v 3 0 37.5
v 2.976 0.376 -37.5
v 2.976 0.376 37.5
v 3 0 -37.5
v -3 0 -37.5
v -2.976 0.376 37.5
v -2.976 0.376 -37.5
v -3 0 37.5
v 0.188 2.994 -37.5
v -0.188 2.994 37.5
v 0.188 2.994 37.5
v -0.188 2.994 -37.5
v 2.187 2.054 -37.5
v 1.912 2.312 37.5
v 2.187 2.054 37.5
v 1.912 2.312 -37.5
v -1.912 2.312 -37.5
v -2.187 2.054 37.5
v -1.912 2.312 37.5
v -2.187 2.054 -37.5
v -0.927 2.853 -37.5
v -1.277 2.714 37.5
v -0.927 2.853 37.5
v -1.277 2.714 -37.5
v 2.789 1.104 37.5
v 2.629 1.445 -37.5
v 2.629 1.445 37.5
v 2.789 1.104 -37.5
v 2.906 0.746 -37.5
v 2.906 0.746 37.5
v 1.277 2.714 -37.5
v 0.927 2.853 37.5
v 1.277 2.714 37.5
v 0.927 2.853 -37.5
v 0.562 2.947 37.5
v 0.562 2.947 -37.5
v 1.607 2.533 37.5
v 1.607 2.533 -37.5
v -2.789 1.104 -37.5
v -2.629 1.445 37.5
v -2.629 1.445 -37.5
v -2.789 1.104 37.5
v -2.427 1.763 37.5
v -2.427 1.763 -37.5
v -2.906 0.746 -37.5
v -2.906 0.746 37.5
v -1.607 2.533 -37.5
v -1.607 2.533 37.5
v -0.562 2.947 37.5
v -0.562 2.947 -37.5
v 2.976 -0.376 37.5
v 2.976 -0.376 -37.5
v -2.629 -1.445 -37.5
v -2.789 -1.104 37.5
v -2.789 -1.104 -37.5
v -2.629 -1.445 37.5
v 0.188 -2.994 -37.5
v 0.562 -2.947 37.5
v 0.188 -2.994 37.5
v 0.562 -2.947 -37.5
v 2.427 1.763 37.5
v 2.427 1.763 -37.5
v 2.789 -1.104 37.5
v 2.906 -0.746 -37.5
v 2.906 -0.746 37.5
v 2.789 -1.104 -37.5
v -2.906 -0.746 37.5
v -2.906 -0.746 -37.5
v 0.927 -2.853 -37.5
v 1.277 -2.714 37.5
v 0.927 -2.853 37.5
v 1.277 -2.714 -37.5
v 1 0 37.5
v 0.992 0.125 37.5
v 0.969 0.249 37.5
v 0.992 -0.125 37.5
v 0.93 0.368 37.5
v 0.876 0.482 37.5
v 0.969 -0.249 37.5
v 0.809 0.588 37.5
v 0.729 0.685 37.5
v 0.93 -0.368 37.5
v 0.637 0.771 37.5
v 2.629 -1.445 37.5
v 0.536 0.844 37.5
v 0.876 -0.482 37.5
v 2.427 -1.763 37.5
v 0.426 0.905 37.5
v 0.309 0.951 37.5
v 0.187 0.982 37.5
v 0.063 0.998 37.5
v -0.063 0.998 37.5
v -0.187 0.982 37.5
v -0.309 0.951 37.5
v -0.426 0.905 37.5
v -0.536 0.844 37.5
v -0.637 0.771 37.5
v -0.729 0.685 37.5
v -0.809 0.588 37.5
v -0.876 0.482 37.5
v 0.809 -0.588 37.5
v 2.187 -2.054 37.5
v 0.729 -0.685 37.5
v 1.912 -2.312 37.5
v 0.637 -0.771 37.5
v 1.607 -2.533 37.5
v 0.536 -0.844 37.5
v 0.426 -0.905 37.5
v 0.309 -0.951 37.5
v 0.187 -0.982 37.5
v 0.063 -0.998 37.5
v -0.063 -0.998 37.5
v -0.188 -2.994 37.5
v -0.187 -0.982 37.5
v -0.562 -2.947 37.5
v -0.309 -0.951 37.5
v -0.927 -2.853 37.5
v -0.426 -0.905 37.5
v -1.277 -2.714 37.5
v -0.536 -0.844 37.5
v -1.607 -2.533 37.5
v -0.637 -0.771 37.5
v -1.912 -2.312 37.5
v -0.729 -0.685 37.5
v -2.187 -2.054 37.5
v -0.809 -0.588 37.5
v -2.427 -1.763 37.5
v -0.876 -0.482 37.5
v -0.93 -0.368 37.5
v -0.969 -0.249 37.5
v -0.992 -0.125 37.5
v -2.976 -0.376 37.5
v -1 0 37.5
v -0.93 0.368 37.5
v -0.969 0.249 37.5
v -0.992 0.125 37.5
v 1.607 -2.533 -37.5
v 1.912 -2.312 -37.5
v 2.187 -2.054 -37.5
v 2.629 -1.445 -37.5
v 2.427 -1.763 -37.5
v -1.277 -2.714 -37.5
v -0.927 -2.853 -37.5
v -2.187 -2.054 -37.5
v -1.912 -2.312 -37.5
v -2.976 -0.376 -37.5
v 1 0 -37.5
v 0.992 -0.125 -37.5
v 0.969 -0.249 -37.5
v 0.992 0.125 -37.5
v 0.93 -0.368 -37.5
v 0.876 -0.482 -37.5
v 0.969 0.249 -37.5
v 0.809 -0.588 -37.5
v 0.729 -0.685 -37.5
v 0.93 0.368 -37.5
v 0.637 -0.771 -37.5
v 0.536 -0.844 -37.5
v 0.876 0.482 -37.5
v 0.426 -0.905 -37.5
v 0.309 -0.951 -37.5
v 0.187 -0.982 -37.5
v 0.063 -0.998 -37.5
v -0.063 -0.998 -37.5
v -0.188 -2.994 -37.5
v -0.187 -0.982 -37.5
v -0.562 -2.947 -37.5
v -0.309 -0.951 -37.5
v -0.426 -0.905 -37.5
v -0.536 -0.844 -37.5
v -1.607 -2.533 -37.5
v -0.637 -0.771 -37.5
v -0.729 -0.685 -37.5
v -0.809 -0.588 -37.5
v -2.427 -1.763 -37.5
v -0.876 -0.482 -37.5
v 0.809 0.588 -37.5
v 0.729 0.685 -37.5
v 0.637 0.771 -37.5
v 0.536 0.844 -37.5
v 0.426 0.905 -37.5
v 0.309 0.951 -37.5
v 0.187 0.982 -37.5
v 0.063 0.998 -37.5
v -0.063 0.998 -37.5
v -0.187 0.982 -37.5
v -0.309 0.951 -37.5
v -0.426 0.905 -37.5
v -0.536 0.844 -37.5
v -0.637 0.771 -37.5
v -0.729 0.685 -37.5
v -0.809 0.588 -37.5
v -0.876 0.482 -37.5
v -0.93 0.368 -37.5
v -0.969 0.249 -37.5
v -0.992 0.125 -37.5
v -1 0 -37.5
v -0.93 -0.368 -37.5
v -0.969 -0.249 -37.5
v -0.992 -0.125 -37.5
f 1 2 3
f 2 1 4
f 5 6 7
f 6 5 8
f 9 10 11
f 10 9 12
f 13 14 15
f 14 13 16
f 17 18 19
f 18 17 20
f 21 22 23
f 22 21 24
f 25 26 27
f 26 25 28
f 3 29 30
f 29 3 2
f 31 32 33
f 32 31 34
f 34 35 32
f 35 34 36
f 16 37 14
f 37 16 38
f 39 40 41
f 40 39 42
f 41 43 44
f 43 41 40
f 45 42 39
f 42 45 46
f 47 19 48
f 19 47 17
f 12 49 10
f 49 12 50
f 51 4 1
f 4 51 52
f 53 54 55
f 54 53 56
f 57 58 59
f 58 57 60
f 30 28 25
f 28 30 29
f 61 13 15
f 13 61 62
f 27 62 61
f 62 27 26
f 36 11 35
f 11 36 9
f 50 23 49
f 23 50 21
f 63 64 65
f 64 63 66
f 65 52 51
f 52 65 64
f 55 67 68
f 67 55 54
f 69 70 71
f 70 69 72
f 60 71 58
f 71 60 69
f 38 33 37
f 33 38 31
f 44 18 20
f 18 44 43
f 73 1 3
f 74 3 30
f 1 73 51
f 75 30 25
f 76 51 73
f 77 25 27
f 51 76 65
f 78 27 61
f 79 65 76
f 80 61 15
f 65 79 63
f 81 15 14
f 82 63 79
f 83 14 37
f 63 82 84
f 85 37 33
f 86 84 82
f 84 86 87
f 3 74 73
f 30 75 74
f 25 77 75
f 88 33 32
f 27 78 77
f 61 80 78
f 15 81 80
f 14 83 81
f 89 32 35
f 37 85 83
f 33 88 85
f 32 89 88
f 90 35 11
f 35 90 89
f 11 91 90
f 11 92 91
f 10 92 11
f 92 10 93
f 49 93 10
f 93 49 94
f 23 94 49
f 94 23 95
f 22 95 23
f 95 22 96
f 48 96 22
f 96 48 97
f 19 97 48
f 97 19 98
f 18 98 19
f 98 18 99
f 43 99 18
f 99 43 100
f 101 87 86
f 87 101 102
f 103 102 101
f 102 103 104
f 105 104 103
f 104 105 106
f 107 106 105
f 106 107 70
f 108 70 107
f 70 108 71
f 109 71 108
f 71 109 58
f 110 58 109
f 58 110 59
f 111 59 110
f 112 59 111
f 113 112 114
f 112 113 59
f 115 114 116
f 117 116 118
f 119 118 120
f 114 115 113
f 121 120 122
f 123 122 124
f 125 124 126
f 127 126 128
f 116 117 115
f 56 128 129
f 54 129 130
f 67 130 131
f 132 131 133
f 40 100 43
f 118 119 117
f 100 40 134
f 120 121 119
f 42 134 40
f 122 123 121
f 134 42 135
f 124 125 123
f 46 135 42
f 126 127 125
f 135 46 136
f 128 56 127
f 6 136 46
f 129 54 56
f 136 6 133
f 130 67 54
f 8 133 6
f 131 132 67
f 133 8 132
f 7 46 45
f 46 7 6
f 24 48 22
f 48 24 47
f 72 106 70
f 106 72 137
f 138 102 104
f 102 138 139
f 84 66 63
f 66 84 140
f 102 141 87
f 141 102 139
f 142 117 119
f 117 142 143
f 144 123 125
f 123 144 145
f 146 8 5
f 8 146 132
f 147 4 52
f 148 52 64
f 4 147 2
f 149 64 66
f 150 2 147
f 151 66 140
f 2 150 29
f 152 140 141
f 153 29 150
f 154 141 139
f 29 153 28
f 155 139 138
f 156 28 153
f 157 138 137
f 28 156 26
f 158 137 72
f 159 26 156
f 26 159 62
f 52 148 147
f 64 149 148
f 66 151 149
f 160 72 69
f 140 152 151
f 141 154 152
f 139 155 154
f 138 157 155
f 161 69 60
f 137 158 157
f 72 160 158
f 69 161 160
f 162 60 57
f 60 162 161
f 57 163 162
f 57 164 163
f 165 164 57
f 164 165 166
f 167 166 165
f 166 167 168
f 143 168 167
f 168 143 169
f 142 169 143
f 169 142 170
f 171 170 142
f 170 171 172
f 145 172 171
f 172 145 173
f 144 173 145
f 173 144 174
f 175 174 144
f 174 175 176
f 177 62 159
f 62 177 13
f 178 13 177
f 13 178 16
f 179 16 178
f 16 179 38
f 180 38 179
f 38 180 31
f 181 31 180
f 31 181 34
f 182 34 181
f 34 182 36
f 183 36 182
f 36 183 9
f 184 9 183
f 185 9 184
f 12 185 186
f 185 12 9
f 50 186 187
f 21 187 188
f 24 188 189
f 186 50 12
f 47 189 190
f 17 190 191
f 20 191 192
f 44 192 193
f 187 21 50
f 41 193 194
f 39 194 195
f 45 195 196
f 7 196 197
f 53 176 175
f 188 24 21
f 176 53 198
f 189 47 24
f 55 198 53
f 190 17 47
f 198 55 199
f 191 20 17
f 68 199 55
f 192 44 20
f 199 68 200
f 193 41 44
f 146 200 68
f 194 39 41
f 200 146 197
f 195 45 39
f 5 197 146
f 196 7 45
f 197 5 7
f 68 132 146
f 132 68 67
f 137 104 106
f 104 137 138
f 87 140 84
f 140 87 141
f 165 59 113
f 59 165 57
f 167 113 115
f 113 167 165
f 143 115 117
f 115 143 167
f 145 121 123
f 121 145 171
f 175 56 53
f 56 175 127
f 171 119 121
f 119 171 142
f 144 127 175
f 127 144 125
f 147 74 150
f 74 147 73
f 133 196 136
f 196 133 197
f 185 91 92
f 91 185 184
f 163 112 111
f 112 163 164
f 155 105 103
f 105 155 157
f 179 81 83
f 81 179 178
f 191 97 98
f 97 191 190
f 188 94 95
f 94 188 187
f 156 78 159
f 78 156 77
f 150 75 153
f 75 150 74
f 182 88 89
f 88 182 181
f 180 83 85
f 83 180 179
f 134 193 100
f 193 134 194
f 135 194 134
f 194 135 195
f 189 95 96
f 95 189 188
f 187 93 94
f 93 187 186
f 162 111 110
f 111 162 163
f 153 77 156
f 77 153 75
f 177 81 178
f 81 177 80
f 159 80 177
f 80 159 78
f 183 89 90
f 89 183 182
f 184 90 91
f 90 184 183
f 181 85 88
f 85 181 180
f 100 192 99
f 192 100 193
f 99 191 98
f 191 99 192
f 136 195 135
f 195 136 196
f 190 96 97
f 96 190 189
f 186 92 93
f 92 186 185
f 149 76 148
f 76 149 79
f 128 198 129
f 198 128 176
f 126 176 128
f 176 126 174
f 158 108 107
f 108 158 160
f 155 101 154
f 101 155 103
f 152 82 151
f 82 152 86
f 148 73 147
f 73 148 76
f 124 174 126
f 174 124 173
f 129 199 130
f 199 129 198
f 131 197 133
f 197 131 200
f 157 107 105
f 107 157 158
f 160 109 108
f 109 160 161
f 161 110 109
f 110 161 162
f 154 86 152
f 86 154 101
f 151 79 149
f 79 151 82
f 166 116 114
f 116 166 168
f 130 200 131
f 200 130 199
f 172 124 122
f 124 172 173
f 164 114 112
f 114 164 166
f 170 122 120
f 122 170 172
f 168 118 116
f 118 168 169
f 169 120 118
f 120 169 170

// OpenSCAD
$fn = 50;


difference() {
	union() {
		translate(v = [0, 0, -37.5000000000]) {
			cylinder(h = 75, r = 3.0000000000);
		}
	}
	union() {
		translate(v = [0, 0, -100.0000000000]) {
			cylinder(h = 200, r = 1.0000000000);
		}
	}
}
